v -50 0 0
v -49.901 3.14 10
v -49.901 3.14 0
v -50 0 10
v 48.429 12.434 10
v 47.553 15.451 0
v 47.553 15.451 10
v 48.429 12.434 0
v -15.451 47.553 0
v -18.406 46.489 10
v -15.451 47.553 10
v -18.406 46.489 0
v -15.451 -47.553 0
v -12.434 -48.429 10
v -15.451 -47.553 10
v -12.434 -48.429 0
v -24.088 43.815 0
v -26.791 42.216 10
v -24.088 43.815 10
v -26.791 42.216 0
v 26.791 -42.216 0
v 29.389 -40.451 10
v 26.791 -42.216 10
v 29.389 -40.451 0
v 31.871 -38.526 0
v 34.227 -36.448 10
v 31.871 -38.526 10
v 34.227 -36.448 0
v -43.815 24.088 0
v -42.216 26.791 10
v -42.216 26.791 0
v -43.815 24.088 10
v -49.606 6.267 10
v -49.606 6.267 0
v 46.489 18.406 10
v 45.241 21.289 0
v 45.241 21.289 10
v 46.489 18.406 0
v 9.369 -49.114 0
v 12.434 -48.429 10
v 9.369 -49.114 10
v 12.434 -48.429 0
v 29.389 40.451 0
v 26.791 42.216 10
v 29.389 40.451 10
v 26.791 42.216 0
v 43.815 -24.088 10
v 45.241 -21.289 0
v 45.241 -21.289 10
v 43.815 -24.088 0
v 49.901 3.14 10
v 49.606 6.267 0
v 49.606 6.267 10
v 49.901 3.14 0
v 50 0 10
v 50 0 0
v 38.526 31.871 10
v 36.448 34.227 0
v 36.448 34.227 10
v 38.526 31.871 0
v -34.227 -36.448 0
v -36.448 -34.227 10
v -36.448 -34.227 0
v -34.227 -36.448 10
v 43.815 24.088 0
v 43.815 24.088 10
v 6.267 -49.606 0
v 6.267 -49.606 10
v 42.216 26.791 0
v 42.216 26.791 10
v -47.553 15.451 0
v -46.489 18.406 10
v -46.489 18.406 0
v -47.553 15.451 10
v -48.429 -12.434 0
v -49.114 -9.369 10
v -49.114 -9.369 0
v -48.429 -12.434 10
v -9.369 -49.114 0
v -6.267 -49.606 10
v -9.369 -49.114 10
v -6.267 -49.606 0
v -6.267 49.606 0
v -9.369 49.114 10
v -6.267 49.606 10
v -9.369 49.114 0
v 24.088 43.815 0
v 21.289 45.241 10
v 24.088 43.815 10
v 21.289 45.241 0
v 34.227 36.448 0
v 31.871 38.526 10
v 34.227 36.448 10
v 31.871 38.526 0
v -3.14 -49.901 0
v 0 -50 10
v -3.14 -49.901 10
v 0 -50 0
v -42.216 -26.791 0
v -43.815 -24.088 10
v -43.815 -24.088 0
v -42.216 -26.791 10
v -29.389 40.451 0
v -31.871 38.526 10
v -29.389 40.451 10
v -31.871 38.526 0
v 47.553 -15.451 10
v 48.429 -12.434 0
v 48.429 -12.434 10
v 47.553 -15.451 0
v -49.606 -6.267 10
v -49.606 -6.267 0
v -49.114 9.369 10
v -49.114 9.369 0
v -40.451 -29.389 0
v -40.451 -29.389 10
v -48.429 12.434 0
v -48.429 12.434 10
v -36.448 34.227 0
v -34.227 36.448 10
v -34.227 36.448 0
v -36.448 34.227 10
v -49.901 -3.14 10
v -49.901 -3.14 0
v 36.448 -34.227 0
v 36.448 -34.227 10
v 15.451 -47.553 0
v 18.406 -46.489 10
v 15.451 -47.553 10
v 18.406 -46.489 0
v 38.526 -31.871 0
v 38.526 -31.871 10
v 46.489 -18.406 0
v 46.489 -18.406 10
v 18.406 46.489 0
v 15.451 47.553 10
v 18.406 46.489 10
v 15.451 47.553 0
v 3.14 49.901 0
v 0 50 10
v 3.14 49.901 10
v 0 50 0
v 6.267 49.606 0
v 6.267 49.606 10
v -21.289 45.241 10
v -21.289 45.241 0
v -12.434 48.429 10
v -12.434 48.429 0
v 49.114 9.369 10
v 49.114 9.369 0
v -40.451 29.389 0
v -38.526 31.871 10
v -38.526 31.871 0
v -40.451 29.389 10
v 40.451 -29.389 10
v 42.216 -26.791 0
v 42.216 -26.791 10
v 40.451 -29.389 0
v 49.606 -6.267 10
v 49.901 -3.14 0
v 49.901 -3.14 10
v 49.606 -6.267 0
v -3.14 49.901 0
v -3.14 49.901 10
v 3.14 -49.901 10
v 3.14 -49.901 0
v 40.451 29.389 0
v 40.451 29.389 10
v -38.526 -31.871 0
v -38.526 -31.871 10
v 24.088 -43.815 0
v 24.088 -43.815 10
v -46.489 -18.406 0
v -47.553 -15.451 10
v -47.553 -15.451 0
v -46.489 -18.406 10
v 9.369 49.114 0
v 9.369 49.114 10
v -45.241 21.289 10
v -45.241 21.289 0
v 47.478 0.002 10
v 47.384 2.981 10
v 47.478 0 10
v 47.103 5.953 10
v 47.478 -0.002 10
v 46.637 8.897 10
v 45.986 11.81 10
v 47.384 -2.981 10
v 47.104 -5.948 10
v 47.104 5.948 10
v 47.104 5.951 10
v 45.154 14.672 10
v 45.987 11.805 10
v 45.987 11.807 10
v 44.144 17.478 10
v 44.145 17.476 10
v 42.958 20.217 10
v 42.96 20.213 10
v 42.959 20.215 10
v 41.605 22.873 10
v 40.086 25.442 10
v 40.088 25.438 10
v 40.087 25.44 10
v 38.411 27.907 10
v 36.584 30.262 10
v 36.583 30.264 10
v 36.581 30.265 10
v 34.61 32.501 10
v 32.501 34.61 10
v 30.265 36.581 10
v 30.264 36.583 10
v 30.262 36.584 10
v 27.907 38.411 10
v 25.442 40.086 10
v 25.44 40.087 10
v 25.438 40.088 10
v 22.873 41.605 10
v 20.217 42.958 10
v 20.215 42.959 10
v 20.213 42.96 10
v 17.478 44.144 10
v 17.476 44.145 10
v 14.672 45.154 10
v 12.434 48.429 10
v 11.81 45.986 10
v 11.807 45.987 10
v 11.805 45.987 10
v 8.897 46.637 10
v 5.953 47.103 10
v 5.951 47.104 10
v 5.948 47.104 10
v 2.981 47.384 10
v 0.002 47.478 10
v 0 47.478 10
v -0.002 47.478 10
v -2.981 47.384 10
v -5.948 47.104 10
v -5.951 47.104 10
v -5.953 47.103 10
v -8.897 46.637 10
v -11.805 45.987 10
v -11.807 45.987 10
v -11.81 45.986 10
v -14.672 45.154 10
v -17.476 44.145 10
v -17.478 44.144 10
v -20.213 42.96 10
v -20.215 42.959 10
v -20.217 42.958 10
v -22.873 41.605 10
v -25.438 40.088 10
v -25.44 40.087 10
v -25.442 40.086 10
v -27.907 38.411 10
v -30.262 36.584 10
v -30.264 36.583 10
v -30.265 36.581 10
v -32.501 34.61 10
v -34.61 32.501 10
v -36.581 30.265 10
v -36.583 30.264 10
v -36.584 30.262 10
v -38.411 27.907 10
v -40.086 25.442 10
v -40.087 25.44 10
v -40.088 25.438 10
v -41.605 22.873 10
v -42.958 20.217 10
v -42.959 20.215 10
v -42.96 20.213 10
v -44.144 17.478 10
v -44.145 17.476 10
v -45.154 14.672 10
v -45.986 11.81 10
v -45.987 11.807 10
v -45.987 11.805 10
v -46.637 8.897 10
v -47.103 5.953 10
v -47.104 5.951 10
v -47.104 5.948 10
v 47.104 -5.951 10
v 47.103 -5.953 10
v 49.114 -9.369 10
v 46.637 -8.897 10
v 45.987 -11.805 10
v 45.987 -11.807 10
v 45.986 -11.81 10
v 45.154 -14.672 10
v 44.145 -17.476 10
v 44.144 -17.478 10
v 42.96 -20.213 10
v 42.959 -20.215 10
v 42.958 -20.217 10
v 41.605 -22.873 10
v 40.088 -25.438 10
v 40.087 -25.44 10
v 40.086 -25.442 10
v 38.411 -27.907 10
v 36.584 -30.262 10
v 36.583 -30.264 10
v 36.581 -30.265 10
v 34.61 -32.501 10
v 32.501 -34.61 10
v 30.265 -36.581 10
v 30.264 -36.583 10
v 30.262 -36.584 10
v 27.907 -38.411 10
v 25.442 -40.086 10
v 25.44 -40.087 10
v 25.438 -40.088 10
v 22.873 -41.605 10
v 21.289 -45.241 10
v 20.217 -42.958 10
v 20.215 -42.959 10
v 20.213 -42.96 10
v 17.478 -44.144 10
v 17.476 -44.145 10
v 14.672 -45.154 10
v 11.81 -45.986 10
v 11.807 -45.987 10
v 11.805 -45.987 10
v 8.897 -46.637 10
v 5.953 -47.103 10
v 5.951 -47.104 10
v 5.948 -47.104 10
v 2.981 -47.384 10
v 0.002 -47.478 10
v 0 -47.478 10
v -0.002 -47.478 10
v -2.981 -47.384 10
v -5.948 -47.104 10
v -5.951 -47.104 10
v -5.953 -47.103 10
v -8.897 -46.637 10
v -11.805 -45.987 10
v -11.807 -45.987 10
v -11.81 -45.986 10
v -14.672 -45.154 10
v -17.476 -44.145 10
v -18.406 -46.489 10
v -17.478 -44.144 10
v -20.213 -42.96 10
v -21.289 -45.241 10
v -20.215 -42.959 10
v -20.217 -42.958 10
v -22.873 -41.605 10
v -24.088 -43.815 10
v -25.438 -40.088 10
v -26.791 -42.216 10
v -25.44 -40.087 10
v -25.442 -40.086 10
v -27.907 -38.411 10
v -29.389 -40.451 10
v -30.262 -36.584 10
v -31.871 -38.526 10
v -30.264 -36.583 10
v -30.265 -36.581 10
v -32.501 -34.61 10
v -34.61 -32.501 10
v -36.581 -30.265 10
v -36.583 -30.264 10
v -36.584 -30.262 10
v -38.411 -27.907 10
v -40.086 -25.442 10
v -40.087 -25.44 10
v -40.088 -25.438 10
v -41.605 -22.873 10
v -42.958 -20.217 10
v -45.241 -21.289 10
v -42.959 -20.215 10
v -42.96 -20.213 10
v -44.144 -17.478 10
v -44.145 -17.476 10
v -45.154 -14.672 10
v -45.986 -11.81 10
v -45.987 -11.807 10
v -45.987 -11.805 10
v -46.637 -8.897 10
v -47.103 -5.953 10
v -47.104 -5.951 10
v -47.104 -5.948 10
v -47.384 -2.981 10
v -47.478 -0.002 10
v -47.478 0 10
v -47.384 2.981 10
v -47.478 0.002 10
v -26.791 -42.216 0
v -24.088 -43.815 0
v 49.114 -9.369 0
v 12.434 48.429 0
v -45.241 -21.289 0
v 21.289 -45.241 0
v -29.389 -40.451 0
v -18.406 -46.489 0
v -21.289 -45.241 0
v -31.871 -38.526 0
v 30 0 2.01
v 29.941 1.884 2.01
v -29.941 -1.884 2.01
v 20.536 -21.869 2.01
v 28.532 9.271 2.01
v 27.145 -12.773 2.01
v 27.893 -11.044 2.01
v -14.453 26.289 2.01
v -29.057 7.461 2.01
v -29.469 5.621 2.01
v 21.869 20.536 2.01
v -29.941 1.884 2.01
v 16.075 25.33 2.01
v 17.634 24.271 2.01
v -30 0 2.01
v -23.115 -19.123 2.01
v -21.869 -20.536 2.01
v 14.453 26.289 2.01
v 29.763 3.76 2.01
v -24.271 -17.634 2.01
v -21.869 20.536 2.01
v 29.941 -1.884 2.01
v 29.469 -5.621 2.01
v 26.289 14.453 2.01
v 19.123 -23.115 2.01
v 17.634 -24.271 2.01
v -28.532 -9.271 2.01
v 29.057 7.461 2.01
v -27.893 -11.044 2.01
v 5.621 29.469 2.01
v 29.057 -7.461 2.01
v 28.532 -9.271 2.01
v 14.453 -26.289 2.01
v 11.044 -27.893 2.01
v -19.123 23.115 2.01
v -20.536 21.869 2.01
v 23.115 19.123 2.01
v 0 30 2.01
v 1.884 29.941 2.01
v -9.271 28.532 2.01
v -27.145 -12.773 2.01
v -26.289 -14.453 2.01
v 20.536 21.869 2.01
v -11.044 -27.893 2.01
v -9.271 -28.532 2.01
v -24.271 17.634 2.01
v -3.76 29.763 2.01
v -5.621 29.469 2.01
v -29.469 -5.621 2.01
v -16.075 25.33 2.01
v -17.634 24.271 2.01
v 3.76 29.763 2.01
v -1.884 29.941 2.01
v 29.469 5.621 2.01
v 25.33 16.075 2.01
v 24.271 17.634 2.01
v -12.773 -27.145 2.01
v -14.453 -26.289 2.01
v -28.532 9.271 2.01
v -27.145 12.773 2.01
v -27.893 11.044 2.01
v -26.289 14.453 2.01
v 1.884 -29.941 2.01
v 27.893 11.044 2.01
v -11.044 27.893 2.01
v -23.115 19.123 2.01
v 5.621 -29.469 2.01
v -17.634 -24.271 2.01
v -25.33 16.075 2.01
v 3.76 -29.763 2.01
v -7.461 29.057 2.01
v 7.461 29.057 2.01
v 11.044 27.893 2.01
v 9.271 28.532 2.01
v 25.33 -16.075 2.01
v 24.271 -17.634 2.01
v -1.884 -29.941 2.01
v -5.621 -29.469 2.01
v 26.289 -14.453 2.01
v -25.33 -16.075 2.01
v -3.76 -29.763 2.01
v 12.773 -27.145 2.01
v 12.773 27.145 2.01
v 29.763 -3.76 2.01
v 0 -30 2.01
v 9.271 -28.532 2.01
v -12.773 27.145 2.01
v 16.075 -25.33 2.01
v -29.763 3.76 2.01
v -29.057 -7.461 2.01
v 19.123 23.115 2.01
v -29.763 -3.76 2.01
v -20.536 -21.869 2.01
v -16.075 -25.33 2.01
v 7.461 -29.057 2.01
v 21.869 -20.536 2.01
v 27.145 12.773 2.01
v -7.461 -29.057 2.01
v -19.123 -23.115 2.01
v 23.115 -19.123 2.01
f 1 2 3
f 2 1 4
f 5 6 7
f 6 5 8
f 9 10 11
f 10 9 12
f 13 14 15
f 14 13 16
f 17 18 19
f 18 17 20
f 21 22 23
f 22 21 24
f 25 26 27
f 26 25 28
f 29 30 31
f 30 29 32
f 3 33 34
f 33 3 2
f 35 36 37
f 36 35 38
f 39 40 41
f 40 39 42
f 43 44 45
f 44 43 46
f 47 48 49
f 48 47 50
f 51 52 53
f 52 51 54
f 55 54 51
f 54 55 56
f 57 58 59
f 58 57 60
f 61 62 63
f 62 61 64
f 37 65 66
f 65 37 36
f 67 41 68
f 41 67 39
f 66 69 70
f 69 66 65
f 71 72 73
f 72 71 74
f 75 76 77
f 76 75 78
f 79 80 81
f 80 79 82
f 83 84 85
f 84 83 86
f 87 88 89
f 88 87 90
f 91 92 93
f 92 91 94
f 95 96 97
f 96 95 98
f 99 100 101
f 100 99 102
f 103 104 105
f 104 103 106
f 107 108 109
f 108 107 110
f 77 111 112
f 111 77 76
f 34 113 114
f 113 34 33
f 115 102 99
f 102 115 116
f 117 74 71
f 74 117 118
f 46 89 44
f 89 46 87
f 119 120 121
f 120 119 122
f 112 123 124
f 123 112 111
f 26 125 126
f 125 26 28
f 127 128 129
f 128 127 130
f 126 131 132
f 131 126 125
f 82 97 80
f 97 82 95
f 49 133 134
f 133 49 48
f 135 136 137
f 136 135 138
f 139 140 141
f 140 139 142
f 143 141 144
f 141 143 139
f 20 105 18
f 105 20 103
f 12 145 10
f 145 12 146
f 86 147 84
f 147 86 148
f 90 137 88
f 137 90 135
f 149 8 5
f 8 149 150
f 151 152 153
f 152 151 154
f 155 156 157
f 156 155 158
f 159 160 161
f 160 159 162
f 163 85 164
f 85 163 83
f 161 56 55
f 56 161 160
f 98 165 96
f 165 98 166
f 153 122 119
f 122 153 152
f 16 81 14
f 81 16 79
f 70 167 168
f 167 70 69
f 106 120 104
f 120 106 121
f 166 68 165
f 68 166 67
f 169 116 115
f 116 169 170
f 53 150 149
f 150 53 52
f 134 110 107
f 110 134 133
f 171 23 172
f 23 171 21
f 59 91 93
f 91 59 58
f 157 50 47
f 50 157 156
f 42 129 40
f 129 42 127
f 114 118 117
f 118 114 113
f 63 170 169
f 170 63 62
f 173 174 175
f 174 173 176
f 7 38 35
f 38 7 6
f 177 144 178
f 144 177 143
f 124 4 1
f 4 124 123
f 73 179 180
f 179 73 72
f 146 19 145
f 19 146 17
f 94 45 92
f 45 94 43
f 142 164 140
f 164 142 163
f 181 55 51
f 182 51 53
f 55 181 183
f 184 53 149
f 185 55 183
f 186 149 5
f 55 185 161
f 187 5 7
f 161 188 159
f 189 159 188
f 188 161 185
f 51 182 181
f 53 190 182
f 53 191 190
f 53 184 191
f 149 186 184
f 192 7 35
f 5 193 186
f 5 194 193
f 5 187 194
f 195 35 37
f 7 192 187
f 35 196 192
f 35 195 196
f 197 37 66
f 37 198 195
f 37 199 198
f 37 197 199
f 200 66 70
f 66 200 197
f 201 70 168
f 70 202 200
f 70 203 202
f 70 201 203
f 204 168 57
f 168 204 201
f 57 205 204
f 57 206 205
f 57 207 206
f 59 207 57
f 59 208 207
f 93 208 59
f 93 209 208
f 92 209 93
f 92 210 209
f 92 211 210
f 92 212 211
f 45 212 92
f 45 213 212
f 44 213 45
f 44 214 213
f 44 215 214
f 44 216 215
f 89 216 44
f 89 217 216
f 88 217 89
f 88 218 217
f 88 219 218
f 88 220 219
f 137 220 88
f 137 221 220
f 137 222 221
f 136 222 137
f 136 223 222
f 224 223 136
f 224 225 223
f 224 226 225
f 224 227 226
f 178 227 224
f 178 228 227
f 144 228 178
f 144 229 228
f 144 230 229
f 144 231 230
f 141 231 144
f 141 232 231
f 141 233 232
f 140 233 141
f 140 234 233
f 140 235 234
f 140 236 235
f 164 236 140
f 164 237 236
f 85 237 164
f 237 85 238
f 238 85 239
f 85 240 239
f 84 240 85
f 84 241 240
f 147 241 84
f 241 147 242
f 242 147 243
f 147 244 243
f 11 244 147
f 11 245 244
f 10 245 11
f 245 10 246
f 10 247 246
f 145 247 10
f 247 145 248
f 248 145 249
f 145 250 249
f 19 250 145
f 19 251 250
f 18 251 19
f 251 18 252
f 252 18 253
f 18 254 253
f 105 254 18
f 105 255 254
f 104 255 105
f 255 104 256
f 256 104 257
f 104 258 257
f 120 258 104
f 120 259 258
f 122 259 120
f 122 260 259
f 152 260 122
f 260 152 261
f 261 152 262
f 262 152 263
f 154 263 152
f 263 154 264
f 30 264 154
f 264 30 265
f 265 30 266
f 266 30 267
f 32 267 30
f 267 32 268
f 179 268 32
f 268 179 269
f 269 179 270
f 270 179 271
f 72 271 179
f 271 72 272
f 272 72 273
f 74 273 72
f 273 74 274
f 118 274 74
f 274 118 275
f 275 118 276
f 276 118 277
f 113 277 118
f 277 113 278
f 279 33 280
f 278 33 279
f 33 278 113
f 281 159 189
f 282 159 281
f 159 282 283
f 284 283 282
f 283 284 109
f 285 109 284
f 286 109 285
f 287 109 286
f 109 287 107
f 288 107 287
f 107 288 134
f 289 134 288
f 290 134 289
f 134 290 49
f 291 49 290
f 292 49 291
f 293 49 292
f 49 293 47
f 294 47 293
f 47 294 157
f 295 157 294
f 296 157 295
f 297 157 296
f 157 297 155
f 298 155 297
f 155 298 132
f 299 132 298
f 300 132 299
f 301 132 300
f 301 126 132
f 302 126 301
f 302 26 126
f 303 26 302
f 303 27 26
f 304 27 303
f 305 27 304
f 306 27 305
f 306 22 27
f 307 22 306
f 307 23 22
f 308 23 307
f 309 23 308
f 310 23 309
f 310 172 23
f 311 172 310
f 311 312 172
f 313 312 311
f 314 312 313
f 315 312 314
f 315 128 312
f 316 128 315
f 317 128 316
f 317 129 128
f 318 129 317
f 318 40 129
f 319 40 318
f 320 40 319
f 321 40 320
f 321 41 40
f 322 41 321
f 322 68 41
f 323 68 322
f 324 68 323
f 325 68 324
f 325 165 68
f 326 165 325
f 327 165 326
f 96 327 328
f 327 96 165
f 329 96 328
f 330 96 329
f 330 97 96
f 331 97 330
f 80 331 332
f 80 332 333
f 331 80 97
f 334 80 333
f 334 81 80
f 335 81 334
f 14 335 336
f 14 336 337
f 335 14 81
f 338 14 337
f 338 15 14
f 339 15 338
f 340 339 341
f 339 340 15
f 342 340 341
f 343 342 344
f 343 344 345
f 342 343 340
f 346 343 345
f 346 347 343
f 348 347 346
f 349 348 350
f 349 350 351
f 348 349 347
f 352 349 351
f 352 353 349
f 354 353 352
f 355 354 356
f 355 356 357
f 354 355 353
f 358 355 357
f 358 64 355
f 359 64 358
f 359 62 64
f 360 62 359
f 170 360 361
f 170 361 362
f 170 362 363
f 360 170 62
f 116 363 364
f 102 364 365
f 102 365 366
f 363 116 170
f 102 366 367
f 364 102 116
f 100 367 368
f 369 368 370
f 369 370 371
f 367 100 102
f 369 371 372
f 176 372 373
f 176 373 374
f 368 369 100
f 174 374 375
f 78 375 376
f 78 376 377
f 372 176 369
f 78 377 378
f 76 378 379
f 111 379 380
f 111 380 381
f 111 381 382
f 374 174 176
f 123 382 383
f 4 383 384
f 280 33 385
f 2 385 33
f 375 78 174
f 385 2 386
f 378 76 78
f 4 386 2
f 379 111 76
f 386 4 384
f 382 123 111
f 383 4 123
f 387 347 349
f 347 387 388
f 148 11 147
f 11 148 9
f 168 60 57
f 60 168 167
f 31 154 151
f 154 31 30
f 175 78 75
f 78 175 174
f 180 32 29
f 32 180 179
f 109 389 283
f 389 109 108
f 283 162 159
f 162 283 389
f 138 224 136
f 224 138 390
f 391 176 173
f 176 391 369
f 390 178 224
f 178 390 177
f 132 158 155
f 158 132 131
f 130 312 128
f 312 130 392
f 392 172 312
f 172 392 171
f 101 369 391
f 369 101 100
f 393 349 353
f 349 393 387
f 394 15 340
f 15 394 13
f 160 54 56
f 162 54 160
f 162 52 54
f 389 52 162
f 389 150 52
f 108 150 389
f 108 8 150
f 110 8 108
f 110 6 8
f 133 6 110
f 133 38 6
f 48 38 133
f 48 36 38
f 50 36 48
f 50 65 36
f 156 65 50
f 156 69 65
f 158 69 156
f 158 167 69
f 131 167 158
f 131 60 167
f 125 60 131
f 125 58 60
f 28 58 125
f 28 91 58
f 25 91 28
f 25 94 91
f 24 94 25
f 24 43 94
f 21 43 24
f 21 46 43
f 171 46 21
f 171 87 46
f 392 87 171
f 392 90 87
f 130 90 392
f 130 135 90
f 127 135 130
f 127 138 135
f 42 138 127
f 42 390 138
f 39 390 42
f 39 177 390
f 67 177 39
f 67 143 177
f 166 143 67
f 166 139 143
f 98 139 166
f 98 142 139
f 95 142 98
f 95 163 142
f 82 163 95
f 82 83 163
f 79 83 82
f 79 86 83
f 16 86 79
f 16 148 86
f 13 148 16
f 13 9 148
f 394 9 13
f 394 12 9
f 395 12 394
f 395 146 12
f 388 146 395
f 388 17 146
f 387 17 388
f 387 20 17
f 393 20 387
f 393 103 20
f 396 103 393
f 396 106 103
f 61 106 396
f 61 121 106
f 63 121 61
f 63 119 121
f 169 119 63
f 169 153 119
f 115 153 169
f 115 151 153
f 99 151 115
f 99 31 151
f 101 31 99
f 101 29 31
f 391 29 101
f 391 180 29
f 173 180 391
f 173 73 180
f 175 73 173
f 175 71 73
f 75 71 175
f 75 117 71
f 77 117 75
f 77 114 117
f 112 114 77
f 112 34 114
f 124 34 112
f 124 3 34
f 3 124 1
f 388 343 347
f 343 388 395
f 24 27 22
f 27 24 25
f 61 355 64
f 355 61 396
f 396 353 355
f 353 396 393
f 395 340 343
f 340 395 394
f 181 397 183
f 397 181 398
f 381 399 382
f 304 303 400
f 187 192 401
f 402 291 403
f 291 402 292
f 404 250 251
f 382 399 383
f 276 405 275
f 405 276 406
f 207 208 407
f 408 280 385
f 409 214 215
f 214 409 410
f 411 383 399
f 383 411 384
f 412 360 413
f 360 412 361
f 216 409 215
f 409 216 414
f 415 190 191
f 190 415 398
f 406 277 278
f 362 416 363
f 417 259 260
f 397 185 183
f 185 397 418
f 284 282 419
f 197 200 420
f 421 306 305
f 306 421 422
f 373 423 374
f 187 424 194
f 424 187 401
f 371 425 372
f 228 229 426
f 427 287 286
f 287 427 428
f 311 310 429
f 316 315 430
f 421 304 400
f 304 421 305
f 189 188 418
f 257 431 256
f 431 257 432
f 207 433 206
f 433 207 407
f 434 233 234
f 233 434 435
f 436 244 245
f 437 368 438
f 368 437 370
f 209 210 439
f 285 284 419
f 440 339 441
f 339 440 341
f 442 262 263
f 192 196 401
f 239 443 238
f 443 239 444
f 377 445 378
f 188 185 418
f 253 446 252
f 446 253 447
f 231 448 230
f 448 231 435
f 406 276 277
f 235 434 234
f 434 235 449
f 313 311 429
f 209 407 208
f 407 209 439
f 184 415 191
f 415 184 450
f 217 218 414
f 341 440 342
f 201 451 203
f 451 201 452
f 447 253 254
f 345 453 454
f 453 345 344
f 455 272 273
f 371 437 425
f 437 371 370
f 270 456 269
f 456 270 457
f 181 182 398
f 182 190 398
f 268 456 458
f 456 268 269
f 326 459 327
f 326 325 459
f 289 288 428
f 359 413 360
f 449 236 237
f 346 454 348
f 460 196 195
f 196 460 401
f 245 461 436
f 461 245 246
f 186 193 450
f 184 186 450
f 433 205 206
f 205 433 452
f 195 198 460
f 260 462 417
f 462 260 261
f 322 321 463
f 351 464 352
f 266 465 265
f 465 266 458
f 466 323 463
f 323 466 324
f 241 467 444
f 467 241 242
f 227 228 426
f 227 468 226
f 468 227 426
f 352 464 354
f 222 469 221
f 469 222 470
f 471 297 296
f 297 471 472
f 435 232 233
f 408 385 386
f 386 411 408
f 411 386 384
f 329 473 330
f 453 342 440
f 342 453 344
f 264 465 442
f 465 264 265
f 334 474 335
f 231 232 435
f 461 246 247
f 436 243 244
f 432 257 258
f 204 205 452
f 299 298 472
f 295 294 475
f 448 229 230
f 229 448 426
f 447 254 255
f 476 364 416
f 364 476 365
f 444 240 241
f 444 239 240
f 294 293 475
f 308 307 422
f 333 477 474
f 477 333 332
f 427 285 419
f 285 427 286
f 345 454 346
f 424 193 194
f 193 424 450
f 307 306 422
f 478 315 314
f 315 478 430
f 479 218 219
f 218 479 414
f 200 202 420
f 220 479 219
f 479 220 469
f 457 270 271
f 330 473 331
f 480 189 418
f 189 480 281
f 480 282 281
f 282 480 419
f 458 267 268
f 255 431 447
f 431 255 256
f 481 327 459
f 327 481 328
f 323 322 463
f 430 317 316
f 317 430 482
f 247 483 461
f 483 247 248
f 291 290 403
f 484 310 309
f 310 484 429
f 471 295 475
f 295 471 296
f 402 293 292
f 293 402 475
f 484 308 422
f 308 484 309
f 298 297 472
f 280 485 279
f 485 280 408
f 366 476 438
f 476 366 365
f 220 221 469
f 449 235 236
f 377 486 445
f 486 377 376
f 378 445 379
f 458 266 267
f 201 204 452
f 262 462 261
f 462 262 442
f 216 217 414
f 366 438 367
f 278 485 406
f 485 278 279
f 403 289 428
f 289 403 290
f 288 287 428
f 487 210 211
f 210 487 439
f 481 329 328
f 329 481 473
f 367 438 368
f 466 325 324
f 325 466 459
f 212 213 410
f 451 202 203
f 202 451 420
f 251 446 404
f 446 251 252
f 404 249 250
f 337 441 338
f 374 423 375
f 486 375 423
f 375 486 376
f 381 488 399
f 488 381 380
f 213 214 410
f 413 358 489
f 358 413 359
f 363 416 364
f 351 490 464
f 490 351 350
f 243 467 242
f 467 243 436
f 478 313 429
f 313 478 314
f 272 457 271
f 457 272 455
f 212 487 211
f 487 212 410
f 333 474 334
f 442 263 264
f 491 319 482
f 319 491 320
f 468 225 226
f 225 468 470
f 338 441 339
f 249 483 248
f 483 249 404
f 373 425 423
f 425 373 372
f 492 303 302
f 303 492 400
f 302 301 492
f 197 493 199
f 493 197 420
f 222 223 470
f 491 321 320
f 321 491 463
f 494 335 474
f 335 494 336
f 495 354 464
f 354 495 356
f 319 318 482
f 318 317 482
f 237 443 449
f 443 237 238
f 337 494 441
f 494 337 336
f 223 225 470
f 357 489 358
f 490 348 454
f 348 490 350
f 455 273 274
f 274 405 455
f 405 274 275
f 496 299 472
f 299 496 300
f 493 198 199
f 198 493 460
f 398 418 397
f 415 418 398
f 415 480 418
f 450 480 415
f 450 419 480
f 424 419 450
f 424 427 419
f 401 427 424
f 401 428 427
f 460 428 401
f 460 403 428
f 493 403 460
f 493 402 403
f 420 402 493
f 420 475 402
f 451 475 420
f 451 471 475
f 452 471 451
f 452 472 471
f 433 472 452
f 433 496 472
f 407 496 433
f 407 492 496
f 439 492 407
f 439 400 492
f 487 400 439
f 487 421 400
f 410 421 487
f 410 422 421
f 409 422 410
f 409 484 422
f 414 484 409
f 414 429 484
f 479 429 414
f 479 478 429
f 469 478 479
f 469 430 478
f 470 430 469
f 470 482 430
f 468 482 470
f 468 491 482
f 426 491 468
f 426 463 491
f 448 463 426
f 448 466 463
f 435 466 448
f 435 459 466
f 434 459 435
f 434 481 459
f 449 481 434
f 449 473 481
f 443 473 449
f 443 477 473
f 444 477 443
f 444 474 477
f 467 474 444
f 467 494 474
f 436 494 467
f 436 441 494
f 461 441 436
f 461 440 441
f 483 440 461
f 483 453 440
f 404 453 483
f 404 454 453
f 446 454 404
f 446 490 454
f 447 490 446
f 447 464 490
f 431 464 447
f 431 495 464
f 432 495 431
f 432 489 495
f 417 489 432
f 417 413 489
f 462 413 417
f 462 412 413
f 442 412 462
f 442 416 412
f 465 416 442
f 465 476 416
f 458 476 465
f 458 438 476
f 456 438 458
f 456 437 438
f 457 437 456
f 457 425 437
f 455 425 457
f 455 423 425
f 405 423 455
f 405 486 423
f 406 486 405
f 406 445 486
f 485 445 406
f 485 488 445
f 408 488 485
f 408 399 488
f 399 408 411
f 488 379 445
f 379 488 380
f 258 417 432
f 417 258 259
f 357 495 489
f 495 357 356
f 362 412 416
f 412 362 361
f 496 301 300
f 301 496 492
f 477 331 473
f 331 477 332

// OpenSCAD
$fn = 100;

dishDiameter = 100;
potDiameter = 60;
height = 10;

difference() {
    cylinder(h = height, d = dishDiameter);

    translate([0, 0, 2.01])
    cylinder(h = height - 2, d1 = potDiameter, d2 = dishDiameter - 5);
}
